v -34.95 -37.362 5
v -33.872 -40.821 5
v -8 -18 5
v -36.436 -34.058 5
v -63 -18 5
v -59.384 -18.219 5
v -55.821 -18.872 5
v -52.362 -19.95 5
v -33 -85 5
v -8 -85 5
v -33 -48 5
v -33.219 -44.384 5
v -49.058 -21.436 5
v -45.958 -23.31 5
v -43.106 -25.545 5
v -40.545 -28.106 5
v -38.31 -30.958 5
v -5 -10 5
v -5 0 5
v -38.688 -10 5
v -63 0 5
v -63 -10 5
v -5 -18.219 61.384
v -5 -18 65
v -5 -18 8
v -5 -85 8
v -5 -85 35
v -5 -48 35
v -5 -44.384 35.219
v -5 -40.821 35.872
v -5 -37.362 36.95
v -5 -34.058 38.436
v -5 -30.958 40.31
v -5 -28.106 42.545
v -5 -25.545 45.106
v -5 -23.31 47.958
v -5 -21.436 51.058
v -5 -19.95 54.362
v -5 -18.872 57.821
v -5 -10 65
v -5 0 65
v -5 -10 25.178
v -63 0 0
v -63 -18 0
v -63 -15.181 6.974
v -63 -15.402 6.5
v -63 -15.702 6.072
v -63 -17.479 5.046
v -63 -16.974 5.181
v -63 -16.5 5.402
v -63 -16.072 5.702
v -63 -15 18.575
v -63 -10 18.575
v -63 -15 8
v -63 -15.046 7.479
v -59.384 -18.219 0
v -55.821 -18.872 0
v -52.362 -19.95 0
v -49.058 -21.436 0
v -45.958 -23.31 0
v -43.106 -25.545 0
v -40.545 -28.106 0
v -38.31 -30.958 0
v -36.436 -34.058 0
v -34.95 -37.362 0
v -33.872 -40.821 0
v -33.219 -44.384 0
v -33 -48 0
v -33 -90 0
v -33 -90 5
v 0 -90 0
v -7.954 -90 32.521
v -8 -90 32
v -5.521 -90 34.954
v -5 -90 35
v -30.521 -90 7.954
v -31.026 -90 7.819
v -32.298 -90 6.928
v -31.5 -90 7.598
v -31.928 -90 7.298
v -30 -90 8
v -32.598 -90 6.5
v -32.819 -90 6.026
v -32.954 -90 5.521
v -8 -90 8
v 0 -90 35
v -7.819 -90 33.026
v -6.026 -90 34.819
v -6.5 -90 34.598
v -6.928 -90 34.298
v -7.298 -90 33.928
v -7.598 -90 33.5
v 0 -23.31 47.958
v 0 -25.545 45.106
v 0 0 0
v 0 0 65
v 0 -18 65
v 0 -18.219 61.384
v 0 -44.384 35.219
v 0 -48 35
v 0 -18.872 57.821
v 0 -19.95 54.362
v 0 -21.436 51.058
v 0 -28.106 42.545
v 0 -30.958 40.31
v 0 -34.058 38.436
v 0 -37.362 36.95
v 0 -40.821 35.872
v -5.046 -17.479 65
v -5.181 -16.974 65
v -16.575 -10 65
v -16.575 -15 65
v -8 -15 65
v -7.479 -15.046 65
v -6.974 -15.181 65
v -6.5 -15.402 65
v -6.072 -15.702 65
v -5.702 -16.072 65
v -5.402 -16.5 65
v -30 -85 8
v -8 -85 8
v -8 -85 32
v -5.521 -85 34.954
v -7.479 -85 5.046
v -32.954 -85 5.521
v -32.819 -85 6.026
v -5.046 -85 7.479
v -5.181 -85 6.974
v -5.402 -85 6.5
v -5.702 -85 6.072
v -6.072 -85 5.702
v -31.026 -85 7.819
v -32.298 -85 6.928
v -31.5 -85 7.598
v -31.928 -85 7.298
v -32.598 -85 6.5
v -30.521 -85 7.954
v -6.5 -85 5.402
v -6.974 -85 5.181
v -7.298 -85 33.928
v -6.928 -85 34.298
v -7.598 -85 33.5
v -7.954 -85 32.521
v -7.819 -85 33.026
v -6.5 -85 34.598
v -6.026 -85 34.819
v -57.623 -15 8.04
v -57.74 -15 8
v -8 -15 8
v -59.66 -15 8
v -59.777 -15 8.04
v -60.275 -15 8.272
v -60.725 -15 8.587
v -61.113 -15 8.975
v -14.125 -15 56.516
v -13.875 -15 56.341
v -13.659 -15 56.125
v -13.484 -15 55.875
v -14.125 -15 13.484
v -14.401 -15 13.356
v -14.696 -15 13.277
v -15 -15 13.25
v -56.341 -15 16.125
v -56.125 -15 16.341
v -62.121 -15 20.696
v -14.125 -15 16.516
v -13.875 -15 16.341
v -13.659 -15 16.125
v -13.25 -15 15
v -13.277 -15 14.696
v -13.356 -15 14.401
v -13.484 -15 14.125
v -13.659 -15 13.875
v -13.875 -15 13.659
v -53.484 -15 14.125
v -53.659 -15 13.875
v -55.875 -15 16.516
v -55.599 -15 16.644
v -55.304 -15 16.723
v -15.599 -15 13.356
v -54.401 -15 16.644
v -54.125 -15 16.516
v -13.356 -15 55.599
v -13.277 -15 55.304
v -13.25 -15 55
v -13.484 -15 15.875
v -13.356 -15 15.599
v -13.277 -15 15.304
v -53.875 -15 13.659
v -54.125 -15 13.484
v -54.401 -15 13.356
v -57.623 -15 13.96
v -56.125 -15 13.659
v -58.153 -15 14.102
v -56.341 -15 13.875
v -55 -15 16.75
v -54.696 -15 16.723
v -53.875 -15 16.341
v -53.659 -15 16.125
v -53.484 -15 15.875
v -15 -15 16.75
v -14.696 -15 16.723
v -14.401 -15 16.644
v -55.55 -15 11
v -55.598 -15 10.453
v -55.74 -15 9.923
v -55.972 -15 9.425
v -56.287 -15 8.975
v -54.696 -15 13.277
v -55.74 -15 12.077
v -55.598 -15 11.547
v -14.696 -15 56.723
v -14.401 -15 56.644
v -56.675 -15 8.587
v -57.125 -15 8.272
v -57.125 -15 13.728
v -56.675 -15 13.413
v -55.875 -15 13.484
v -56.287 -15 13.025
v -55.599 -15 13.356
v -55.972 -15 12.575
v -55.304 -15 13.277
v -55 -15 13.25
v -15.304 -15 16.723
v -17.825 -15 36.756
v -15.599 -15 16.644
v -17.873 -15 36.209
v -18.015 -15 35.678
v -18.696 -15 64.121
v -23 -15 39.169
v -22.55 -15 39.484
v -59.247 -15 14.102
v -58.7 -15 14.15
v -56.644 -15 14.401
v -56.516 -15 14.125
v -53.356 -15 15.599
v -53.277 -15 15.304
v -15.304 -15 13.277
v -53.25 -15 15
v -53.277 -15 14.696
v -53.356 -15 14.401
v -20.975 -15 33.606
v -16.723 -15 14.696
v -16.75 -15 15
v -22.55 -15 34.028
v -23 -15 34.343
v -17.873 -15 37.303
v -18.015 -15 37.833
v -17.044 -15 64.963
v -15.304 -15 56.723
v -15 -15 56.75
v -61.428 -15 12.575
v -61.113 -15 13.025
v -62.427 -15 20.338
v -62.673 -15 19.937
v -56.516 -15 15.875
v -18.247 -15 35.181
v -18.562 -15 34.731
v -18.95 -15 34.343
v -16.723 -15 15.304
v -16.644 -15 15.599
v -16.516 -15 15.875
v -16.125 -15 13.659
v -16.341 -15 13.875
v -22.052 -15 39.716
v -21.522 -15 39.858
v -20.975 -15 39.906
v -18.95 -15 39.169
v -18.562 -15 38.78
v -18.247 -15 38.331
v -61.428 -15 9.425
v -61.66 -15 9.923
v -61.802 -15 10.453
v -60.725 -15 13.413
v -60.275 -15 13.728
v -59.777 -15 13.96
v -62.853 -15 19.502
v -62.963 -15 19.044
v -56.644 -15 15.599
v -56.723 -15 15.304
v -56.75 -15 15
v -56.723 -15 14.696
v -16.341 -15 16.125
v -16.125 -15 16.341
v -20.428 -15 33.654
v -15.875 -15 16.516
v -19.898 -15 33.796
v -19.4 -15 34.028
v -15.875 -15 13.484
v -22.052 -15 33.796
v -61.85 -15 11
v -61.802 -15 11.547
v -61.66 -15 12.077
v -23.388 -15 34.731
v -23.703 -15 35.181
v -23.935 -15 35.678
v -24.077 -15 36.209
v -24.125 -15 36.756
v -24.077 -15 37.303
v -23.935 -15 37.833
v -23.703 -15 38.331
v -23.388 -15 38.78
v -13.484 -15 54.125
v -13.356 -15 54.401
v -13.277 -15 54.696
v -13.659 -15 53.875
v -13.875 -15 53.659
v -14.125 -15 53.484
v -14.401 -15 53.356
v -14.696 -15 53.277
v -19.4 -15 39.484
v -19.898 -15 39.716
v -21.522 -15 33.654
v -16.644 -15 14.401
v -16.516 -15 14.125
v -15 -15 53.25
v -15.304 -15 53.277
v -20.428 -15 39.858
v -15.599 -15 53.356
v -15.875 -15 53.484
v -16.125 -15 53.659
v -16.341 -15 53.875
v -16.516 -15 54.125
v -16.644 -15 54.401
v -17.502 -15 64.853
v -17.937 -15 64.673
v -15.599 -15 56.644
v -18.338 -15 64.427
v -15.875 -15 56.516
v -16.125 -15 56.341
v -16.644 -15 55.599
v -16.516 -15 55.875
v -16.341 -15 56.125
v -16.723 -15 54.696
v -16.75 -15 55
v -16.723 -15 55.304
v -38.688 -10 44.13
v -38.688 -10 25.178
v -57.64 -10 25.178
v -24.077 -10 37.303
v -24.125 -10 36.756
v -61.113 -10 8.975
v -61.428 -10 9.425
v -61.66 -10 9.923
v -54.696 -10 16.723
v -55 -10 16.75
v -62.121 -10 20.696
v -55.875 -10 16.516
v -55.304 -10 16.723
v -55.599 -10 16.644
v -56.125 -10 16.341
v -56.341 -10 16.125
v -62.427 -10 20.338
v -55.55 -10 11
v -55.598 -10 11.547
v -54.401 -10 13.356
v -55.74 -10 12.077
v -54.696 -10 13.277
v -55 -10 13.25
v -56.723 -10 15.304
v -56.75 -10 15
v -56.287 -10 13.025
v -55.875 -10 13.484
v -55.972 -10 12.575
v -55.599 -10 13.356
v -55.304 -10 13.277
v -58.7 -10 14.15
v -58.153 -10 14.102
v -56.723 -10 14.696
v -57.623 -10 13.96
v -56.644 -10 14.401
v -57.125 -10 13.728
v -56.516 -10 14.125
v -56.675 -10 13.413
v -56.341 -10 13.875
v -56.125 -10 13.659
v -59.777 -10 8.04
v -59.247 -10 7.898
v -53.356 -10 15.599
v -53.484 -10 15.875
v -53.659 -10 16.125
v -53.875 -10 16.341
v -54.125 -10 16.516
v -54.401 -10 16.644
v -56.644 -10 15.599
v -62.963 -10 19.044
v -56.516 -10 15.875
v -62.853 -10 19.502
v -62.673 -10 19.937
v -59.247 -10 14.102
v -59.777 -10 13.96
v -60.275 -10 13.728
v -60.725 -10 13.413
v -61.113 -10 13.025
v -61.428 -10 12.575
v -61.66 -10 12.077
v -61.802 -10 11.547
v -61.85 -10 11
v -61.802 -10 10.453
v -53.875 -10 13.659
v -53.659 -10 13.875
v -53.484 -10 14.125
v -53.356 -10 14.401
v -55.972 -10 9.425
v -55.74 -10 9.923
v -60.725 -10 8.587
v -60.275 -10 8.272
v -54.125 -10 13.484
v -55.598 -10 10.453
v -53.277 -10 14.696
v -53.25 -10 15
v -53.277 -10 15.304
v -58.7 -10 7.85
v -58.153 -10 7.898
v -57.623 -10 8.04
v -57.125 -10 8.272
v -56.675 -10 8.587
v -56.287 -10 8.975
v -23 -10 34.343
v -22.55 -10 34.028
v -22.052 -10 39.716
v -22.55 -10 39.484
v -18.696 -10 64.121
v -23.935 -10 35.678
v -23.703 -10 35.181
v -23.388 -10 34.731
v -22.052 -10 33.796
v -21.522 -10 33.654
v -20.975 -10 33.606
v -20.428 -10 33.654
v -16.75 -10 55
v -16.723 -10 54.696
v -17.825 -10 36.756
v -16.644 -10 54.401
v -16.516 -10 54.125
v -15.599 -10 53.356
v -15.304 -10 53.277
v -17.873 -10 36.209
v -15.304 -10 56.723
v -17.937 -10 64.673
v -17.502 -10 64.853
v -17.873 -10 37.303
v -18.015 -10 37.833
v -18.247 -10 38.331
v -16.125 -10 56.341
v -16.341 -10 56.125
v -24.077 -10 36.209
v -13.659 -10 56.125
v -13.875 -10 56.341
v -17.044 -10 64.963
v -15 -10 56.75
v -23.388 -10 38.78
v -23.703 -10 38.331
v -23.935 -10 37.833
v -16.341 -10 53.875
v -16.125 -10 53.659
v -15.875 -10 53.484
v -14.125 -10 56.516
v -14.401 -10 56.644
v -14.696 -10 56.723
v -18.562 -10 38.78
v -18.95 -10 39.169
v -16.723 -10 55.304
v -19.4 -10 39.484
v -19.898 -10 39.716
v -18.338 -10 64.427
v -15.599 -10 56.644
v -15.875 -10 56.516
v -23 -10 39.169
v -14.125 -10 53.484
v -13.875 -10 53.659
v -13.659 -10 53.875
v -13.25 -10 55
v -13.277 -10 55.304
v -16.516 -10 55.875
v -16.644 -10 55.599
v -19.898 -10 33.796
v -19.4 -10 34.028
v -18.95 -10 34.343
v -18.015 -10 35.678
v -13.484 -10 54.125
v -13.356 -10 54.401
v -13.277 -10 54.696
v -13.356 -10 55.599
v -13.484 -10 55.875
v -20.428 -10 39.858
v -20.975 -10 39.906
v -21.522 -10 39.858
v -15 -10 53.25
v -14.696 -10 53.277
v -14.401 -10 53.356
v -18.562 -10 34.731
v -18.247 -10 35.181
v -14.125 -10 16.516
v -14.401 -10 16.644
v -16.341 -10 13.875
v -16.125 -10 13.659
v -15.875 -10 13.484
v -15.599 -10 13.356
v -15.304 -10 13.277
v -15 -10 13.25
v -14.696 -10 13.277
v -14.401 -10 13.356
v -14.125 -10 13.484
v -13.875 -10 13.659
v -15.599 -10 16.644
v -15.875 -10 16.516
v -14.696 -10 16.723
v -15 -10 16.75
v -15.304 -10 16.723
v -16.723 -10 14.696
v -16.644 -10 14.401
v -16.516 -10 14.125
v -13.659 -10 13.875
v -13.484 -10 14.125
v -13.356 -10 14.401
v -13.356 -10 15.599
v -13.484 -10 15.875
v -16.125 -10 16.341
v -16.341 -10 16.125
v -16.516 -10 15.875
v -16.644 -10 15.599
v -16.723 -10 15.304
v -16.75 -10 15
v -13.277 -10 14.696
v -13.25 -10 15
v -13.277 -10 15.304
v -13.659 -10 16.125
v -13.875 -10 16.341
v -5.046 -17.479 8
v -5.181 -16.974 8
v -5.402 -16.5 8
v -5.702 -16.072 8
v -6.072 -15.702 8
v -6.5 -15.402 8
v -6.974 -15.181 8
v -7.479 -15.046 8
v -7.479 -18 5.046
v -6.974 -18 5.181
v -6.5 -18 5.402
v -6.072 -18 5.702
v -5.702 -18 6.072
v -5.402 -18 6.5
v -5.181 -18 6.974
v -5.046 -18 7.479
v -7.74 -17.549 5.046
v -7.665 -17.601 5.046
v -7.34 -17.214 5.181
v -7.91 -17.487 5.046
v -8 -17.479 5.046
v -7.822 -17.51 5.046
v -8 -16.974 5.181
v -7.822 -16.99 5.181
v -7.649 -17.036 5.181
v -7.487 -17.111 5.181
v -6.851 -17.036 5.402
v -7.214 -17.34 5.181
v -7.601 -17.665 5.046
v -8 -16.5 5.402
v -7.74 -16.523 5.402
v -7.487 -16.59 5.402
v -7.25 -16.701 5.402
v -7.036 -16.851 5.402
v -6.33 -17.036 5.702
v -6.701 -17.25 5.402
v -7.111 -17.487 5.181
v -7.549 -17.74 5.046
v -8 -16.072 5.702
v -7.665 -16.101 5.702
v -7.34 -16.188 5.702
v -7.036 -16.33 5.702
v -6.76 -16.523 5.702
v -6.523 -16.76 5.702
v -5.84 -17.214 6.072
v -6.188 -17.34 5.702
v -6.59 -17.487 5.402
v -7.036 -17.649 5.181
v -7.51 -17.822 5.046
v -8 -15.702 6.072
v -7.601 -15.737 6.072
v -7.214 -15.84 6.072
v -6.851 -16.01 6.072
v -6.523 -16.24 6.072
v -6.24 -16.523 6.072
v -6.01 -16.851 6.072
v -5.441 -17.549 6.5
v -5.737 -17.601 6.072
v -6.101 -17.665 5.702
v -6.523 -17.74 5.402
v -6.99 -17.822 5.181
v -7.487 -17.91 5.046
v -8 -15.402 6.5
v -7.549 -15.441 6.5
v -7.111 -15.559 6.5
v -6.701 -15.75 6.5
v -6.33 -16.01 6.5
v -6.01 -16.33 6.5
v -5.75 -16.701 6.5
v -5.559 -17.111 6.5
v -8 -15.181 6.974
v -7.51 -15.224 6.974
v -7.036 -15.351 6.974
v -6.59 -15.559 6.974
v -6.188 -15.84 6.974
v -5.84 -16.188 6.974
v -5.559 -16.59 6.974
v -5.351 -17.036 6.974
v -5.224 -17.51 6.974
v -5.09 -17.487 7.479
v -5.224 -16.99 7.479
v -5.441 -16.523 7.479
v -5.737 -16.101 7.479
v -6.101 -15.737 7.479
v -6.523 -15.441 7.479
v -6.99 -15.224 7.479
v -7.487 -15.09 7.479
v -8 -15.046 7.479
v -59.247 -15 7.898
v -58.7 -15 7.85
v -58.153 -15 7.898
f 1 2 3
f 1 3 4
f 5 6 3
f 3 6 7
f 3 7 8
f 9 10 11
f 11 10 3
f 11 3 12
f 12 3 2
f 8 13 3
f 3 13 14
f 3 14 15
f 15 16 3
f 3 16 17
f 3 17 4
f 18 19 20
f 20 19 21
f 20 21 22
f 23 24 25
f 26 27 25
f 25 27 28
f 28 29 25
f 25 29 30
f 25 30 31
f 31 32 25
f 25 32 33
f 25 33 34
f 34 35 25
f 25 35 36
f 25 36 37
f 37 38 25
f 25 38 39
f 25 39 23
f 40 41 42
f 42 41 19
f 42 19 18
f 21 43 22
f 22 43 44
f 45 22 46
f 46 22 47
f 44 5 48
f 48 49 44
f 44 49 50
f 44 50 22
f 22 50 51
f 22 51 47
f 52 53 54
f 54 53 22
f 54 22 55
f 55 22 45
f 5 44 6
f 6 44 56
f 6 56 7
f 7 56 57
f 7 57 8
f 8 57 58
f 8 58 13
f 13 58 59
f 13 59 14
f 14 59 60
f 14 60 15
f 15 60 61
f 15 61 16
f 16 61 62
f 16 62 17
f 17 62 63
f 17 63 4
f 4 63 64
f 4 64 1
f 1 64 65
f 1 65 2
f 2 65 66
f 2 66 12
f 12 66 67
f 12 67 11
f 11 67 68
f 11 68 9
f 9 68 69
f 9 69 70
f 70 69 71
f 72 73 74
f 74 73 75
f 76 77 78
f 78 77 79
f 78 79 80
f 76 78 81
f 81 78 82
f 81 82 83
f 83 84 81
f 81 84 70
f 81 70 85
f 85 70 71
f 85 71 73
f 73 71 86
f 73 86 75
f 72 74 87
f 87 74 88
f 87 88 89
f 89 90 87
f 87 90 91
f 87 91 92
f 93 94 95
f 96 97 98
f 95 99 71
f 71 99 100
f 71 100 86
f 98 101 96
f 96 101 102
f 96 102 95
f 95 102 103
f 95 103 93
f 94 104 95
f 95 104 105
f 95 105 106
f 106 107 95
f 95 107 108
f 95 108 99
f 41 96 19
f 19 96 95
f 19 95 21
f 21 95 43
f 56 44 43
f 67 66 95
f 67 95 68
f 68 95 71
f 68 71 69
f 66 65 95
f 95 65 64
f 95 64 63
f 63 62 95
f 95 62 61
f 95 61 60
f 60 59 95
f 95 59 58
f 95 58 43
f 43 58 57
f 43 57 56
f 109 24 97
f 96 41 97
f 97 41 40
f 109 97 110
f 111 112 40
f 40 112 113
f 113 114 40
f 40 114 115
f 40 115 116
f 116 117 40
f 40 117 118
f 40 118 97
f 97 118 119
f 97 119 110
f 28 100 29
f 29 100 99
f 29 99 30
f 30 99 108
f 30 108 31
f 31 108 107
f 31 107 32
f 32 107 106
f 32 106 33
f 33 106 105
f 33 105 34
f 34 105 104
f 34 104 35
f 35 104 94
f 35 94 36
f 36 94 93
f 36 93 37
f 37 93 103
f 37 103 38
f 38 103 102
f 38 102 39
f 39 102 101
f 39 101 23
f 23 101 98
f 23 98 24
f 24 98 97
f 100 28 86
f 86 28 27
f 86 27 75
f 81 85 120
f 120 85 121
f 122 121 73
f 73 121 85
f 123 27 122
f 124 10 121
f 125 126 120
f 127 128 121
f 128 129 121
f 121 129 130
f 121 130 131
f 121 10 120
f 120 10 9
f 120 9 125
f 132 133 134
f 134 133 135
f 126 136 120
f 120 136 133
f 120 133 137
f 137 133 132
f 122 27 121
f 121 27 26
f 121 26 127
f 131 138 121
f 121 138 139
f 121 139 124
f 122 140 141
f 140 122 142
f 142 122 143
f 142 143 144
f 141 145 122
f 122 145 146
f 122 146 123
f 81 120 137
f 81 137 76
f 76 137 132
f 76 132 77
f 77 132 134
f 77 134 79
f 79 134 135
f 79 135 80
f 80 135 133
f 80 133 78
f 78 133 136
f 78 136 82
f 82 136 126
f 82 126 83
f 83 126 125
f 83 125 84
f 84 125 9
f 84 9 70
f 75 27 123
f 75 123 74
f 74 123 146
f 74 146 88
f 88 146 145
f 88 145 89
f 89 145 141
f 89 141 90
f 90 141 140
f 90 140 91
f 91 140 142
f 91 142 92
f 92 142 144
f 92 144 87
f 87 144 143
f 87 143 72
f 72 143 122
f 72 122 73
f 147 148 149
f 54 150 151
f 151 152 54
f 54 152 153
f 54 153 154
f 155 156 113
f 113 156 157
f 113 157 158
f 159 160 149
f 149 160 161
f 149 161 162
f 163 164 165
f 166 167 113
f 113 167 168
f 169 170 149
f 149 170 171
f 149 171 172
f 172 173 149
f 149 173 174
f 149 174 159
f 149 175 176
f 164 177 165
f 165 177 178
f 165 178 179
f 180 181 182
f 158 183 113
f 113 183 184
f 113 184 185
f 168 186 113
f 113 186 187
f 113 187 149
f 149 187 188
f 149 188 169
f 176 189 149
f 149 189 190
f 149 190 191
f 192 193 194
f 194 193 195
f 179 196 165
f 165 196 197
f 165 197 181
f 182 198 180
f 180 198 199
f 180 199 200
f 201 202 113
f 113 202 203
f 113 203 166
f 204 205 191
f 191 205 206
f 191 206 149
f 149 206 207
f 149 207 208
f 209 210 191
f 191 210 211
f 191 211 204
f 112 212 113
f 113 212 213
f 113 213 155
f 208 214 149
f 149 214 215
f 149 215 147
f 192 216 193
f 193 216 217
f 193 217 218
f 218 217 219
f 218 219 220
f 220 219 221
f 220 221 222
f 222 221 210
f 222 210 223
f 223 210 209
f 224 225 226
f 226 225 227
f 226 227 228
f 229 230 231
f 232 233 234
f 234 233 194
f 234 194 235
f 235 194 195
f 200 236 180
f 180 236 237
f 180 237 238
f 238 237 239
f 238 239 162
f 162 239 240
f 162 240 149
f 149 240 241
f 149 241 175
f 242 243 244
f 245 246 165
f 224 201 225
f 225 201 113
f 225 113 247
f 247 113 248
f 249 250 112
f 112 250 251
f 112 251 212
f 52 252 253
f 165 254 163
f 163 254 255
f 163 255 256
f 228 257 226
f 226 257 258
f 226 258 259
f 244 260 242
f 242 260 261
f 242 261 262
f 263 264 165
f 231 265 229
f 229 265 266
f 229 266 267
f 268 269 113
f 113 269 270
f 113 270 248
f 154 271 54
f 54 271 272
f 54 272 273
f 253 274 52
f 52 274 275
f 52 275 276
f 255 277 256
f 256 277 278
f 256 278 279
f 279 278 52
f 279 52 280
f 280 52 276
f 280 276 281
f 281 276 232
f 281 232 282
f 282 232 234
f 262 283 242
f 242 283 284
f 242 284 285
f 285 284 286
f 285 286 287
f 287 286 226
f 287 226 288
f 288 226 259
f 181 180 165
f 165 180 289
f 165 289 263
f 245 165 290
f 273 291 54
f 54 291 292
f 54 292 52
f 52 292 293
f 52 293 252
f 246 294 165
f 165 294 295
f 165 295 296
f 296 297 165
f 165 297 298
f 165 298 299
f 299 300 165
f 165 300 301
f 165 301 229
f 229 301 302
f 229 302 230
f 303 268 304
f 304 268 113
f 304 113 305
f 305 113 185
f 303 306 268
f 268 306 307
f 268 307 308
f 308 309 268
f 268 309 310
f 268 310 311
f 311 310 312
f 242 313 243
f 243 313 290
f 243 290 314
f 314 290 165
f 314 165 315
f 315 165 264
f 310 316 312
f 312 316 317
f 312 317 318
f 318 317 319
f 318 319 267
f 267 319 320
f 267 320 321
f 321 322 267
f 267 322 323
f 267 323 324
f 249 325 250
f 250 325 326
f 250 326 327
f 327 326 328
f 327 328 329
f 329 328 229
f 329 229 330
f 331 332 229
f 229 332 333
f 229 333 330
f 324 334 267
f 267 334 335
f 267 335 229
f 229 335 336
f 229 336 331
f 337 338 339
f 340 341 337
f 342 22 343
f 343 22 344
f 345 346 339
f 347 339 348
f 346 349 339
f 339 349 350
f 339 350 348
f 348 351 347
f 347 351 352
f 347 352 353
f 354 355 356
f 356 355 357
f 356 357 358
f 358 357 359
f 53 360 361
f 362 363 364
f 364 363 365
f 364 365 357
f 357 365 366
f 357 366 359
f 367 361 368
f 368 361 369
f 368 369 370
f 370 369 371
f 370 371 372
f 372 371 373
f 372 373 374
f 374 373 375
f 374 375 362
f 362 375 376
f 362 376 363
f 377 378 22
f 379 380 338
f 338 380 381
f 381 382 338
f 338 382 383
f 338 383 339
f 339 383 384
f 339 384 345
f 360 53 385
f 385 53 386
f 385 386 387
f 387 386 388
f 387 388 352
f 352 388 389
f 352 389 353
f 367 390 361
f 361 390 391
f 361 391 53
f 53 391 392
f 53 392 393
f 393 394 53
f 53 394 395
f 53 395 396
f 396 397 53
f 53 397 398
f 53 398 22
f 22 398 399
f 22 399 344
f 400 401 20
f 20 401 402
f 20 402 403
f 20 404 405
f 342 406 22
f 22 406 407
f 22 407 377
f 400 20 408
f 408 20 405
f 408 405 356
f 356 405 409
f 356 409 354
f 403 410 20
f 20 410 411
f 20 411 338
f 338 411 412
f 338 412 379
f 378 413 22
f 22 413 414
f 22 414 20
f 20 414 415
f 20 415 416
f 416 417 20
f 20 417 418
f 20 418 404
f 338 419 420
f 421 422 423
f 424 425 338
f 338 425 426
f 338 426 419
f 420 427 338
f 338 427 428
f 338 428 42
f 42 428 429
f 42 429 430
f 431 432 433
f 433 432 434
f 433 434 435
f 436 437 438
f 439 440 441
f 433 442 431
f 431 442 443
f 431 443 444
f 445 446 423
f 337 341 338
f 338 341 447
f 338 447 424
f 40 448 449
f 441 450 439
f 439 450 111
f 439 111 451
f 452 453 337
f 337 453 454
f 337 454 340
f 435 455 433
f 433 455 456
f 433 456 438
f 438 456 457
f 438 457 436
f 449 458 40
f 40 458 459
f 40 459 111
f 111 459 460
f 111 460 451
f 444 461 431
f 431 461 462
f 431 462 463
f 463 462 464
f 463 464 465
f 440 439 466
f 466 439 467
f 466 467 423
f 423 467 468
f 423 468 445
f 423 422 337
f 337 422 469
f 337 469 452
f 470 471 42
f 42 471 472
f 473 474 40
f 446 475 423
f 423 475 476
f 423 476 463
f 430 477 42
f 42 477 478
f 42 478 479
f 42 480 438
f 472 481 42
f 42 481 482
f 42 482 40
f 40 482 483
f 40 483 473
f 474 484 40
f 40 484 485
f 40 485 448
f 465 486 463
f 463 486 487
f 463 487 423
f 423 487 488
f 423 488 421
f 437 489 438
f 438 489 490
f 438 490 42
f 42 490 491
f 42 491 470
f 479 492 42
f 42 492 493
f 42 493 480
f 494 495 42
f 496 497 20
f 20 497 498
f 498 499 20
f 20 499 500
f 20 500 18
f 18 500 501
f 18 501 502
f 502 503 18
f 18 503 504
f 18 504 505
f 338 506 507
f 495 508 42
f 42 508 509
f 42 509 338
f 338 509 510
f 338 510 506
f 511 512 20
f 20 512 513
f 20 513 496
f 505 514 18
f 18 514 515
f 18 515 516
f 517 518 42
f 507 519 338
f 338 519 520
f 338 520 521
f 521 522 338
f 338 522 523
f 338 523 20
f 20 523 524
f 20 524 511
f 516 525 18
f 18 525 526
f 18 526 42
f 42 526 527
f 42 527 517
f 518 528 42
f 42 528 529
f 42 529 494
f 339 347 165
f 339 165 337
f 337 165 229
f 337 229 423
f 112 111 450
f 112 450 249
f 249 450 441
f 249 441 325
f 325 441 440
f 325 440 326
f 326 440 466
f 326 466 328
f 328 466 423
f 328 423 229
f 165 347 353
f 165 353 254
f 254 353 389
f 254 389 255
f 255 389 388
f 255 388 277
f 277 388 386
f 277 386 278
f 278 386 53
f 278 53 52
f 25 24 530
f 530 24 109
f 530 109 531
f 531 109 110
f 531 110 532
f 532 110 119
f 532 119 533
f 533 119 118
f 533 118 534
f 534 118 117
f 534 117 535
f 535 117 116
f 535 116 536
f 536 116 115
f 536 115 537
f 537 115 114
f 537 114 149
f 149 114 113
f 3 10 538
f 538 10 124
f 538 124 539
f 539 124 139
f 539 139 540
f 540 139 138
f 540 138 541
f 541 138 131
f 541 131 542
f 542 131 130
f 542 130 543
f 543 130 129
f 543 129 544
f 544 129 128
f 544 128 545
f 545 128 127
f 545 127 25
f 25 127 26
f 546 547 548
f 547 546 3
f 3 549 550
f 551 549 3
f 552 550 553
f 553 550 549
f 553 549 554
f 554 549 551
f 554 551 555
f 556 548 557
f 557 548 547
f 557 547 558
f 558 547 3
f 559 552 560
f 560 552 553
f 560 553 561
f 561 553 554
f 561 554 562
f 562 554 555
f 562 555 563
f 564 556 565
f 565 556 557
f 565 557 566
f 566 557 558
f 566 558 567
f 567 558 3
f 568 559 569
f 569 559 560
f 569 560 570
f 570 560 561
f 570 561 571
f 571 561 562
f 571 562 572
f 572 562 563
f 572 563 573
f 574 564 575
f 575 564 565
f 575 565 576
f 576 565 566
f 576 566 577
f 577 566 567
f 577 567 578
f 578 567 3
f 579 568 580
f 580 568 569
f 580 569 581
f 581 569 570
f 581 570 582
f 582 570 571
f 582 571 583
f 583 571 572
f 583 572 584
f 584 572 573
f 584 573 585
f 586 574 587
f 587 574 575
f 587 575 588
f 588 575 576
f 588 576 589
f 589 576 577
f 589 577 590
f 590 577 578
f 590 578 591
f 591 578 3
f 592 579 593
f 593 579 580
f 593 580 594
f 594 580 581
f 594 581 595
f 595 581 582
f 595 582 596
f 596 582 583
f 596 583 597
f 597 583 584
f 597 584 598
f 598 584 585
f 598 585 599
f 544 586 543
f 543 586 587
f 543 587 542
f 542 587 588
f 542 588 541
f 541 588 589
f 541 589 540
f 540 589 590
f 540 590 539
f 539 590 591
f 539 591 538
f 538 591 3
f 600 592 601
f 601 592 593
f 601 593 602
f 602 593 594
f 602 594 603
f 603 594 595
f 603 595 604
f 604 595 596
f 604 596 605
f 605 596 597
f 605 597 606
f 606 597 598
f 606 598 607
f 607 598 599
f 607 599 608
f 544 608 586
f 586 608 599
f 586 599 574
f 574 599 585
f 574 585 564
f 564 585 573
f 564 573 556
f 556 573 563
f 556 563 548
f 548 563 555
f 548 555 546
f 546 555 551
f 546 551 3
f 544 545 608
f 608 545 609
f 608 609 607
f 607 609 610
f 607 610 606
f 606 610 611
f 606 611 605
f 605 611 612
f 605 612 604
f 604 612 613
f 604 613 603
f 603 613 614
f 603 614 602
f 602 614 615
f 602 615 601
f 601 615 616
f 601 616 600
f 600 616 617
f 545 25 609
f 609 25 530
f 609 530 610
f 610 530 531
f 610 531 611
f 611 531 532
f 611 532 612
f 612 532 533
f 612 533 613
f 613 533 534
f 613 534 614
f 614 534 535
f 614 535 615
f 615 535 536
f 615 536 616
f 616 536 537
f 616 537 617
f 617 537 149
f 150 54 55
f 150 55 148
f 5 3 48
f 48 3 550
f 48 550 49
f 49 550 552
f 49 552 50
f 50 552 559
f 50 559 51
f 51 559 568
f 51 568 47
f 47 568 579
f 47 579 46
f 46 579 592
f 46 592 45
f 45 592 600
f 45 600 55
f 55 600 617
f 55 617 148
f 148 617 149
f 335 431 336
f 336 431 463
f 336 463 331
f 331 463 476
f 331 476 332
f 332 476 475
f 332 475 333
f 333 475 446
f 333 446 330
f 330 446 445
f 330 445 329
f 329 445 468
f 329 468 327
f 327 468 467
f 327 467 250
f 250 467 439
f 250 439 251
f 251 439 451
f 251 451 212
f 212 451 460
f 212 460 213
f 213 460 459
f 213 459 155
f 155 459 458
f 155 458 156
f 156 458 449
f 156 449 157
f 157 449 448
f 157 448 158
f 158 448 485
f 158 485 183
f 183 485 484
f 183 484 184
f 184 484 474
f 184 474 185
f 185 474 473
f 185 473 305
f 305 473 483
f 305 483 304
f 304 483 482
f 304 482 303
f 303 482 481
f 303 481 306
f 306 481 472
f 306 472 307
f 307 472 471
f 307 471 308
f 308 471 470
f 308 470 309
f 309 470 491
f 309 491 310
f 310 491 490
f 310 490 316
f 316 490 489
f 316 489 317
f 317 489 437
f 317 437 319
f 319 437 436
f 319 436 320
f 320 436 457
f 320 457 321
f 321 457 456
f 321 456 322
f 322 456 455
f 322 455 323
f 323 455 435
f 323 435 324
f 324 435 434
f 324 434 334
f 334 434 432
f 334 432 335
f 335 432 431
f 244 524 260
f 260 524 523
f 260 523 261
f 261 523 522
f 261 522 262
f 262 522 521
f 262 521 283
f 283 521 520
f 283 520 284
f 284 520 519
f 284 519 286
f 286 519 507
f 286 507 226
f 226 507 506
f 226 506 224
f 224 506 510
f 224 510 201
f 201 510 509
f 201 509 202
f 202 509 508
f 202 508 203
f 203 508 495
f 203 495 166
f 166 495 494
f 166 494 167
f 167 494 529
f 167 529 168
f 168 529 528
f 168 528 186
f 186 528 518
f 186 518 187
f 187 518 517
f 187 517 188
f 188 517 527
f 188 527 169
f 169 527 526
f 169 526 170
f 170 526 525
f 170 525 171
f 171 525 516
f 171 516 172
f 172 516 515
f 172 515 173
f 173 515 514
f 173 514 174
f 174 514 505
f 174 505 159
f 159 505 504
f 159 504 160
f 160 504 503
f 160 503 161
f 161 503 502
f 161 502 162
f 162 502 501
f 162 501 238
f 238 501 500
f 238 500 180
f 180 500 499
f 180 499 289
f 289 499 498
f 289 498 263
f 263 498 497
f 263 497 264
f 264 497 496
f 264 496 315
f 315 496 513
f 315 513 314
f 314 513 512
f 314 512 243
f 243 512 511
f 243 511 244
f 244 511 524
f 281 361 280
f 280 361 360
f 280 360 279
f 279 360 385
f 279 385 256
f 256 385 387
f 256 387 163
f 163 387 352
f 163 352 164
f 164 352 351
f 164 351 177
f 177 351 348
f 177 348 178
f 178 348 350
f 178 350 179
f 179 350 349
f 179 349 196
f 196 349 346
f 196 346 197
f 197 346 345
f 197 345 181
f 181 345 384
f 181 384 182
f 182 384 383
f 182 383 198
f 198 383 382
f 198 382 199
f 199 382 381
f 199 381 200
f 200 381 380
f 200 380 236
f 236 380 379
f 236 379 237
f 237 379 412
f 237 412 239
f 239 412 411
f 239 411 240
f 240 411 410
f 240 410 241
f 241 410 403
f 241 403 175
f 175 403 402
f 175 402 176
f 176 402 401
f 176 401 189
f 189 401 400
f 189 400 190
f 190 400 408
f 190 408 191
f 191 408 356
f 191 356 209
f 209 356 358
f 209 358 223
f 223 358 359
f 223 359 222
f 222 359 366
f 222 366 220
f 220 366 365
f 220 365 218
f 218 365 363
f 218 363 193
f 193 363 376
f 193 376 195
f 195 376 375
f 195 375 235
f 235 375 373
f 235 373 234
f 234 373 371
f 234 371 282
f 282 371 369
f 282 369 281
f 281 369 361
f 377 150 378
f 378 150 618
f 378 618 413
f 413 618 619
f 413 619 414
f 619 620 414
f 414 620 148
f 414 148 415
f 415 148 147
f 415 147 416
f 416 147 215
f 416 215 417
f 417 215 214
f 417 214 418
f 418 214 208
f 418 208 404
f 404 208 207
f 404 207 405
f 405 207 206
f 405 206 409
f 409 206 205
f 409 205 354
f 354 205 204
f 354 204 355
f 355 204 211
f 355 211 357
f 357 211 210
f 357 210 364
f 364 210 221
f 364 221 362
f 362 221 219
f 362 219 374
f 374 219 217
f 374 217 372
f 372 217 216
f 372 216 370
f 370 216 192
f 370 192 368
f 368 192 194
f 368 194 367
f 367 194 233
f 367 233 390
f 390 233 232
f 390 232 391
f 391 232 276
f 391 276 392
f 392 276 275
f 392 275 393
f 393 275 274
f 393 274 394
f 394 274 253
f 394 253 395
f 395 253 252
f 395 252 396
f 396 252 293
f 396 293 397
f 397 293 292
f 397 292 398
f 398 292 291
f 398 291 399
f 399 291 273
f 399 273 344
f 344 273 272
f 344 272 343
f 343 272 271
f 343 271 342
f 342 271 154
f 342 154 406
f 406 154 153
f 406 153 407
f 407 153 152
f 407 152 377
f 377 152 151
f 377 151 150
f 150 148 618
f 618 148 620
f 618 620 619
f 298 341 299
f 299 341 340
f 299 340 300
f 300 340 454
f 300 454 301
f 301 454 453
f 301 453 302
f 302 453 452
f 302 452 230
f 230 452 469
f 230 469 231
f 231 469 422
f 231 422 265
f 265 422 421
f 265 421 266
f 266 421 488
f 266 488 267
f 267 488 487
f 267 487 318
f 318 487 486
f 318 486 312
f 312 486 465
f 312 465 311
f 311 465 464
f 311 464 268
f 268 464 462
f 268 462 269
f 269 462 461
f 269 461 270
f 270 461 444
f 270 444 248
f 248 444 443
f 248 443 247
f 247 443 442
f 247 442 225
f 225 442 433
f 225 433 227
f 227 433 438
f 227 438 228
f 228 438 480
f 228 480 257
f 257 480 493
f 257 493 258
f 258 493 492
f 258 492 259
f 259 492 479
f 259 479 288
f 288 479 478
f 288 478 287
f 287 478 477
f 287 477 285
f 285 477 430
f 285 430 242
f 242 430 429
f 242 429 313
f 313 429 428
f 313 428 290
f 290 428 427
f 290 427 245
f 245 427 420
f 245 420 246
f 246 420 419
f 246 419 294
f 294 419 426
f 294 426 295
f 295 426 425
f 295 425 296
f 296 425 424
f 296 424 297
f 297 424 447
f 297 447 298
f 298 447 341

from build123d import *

# Parameters (mm, degrees)
SALIENTE_EXTRUIR1_DEPTH = 5
CROQUIS2_W              = 5
CROQUIS2_H              = 90
SALIENTE_EXTRUIR2_DEPTH = 60
CORTAR_EXTRUIR1_DEPTH   = 5
SALIENTE_EXTRUIR3_DEPTH = 5
REDONDEO1_R             = 3
CROQUIS5_W              = 58
CROQUIS5_H              = 5
SALIENTE_EXTRUIR4_DEPTH = 60
CORTAR_EXTRUIR2_DEPTH   = 5
REDONDEO2_R             = 3
REDONDEO3_R             = 3
CROQUIS7_R              = 1.75
CROQUIS7_R_2            = 3.15
CORTAR_EXTRUIR3_DEPTH   = 5


with BuildPart() as part:
    # Croquis1 → Saliente-Extruir1 (new body)
    with BuildSketch(Plane.XY):
        with BuildLine():
            Line((-63, 0), (0, 0))
            Line((0, 0), (0, -90))
            Line((0, -90), (-33, -90))
            Line((-33, -90), (-33, -48))
            ThreePointArc((-33, -48), (-41.786797, -26.786797), (-63, -18))
            Line((-63, -18), (-63, 0))
        make_face()
    extrude(amount=SALIENTE_EXTRUIR1_DEPTH)

    # Croquis2 → Saliente-Extruir2 (add)
    with BuildSketch(Plane.XY.offset(5)):
        with Locations((-2.5, -45)):
            Rectangle(CROQUIS2_W, CROQUIS2_H)
    extrude(amount=SALIENTE_EXTRUIR2_DEPTH)

    # Croquis3 → Cortar-Extruir1 (cut)
    with BuildSketch(Plane(origin=(0, 0, 0), x_dir=(0, 0, -1), z_dir=(1, 0, 0))):
        with BuildLine():
            Line((-65, -90), (-35, -90))
            Line((-35, -90), (-35, -48))
            ThreePointArc((-35, -48), (-43.786797, -26.786797), (-65, -18))
            Line((-65, -18), (-65, -90))
        make_face()
    extrude(amount=-CORTAR_EXTRUIR1_DEPTH, mode=Mode.SUBTRACT)

    # Croquis4 → Saliente-Extruir3 (add)
    with BuildSketch(Plane.XZ.offset(90)):
        Polygon((-33, 8), (-8, 8), (-8, 35), (-5, 35), (-5, 5), (-33, 5), align=None)
    extrude(amount=-SALIENTE_EXTRUIR3_DEPTH)

    # Redondeo1
    redondeo1_edges = [part.edges().sort_by_distance(p)[0] for p in [
        (-33, -87.5, 8),
        (-8, -87.5, 35),
    ]]
    fillet(redondeo1_edges, radius=REDONDEO1_R)

    # Croquis5 → Saliente-Extruir4 (add)
    with BuildSketch(Plane.XY.offset(5)):
        with Locations((-34, -12.5)):
            Rectangle(CROQUIS5_W, CROQUIS5_H)
    extrude(amount=SALIENTE_EXTRUIR4_DEPTH)

    # Croquis6 → Cortar-Extruir2 (cut)
    with BuildSketch(Plane(origin=(0, -10, 0), x_dir=(1, 0, 0), z_dir=(0, 1, 0))):
        Polygon((-63, -19.817641), (-17.817641, -65), (-63, -65), align=None)
    extrude(amount=-CORTAR_EXTRUIR2_DEPTH, mode=Mode.SUBTRACT)

    # Redondeo2
    redondeo2_edges = [part.edges().sort_by_distance(p)[0] for p in [
        (-63, -12.5, 19.817641),
        (-17.817641, -12.5, 65),
    ]]
    fillet(redondeo2_edges, radius=REDONDEO2_R)

    # Redondeo3
    redondeo3_edges = [part.edges().sort_by_distance(p)[0] for p in [
        (-34, -15, 5),
        (-5, -15, 35),
        (-5, -50, 5),
    ]]
    fillet(redondeo3_edges, radius=REDONDEO3_R)

    # Croquis7 → Cortar-Extruir3 (cut)
    with BuildSketch(Plane(origin=(0, -10, 0), x_dir=(1, 0, 0), z_dir=(0, 1, 0))):
        with Locations((-15, -55)):
            Circle(CROQUIS7_R)
        with Locations((-15, -15)):
            Circle(CROQUIS7_R)
        with Locations((-55, -15)):
            Circle(CROQUIS7_R)
        with Locations((-58.699976, -11)):
            Circle(CROQUIS7_R_2)
        with Locations((-20.975, -36.755655)):
            Circle(CROQUIS7_R_2)
    extrude(amount=-CORTAR_EXTRUIR3_DEPTH, mode=Mode.SUBTRACT)


solid = part.part
